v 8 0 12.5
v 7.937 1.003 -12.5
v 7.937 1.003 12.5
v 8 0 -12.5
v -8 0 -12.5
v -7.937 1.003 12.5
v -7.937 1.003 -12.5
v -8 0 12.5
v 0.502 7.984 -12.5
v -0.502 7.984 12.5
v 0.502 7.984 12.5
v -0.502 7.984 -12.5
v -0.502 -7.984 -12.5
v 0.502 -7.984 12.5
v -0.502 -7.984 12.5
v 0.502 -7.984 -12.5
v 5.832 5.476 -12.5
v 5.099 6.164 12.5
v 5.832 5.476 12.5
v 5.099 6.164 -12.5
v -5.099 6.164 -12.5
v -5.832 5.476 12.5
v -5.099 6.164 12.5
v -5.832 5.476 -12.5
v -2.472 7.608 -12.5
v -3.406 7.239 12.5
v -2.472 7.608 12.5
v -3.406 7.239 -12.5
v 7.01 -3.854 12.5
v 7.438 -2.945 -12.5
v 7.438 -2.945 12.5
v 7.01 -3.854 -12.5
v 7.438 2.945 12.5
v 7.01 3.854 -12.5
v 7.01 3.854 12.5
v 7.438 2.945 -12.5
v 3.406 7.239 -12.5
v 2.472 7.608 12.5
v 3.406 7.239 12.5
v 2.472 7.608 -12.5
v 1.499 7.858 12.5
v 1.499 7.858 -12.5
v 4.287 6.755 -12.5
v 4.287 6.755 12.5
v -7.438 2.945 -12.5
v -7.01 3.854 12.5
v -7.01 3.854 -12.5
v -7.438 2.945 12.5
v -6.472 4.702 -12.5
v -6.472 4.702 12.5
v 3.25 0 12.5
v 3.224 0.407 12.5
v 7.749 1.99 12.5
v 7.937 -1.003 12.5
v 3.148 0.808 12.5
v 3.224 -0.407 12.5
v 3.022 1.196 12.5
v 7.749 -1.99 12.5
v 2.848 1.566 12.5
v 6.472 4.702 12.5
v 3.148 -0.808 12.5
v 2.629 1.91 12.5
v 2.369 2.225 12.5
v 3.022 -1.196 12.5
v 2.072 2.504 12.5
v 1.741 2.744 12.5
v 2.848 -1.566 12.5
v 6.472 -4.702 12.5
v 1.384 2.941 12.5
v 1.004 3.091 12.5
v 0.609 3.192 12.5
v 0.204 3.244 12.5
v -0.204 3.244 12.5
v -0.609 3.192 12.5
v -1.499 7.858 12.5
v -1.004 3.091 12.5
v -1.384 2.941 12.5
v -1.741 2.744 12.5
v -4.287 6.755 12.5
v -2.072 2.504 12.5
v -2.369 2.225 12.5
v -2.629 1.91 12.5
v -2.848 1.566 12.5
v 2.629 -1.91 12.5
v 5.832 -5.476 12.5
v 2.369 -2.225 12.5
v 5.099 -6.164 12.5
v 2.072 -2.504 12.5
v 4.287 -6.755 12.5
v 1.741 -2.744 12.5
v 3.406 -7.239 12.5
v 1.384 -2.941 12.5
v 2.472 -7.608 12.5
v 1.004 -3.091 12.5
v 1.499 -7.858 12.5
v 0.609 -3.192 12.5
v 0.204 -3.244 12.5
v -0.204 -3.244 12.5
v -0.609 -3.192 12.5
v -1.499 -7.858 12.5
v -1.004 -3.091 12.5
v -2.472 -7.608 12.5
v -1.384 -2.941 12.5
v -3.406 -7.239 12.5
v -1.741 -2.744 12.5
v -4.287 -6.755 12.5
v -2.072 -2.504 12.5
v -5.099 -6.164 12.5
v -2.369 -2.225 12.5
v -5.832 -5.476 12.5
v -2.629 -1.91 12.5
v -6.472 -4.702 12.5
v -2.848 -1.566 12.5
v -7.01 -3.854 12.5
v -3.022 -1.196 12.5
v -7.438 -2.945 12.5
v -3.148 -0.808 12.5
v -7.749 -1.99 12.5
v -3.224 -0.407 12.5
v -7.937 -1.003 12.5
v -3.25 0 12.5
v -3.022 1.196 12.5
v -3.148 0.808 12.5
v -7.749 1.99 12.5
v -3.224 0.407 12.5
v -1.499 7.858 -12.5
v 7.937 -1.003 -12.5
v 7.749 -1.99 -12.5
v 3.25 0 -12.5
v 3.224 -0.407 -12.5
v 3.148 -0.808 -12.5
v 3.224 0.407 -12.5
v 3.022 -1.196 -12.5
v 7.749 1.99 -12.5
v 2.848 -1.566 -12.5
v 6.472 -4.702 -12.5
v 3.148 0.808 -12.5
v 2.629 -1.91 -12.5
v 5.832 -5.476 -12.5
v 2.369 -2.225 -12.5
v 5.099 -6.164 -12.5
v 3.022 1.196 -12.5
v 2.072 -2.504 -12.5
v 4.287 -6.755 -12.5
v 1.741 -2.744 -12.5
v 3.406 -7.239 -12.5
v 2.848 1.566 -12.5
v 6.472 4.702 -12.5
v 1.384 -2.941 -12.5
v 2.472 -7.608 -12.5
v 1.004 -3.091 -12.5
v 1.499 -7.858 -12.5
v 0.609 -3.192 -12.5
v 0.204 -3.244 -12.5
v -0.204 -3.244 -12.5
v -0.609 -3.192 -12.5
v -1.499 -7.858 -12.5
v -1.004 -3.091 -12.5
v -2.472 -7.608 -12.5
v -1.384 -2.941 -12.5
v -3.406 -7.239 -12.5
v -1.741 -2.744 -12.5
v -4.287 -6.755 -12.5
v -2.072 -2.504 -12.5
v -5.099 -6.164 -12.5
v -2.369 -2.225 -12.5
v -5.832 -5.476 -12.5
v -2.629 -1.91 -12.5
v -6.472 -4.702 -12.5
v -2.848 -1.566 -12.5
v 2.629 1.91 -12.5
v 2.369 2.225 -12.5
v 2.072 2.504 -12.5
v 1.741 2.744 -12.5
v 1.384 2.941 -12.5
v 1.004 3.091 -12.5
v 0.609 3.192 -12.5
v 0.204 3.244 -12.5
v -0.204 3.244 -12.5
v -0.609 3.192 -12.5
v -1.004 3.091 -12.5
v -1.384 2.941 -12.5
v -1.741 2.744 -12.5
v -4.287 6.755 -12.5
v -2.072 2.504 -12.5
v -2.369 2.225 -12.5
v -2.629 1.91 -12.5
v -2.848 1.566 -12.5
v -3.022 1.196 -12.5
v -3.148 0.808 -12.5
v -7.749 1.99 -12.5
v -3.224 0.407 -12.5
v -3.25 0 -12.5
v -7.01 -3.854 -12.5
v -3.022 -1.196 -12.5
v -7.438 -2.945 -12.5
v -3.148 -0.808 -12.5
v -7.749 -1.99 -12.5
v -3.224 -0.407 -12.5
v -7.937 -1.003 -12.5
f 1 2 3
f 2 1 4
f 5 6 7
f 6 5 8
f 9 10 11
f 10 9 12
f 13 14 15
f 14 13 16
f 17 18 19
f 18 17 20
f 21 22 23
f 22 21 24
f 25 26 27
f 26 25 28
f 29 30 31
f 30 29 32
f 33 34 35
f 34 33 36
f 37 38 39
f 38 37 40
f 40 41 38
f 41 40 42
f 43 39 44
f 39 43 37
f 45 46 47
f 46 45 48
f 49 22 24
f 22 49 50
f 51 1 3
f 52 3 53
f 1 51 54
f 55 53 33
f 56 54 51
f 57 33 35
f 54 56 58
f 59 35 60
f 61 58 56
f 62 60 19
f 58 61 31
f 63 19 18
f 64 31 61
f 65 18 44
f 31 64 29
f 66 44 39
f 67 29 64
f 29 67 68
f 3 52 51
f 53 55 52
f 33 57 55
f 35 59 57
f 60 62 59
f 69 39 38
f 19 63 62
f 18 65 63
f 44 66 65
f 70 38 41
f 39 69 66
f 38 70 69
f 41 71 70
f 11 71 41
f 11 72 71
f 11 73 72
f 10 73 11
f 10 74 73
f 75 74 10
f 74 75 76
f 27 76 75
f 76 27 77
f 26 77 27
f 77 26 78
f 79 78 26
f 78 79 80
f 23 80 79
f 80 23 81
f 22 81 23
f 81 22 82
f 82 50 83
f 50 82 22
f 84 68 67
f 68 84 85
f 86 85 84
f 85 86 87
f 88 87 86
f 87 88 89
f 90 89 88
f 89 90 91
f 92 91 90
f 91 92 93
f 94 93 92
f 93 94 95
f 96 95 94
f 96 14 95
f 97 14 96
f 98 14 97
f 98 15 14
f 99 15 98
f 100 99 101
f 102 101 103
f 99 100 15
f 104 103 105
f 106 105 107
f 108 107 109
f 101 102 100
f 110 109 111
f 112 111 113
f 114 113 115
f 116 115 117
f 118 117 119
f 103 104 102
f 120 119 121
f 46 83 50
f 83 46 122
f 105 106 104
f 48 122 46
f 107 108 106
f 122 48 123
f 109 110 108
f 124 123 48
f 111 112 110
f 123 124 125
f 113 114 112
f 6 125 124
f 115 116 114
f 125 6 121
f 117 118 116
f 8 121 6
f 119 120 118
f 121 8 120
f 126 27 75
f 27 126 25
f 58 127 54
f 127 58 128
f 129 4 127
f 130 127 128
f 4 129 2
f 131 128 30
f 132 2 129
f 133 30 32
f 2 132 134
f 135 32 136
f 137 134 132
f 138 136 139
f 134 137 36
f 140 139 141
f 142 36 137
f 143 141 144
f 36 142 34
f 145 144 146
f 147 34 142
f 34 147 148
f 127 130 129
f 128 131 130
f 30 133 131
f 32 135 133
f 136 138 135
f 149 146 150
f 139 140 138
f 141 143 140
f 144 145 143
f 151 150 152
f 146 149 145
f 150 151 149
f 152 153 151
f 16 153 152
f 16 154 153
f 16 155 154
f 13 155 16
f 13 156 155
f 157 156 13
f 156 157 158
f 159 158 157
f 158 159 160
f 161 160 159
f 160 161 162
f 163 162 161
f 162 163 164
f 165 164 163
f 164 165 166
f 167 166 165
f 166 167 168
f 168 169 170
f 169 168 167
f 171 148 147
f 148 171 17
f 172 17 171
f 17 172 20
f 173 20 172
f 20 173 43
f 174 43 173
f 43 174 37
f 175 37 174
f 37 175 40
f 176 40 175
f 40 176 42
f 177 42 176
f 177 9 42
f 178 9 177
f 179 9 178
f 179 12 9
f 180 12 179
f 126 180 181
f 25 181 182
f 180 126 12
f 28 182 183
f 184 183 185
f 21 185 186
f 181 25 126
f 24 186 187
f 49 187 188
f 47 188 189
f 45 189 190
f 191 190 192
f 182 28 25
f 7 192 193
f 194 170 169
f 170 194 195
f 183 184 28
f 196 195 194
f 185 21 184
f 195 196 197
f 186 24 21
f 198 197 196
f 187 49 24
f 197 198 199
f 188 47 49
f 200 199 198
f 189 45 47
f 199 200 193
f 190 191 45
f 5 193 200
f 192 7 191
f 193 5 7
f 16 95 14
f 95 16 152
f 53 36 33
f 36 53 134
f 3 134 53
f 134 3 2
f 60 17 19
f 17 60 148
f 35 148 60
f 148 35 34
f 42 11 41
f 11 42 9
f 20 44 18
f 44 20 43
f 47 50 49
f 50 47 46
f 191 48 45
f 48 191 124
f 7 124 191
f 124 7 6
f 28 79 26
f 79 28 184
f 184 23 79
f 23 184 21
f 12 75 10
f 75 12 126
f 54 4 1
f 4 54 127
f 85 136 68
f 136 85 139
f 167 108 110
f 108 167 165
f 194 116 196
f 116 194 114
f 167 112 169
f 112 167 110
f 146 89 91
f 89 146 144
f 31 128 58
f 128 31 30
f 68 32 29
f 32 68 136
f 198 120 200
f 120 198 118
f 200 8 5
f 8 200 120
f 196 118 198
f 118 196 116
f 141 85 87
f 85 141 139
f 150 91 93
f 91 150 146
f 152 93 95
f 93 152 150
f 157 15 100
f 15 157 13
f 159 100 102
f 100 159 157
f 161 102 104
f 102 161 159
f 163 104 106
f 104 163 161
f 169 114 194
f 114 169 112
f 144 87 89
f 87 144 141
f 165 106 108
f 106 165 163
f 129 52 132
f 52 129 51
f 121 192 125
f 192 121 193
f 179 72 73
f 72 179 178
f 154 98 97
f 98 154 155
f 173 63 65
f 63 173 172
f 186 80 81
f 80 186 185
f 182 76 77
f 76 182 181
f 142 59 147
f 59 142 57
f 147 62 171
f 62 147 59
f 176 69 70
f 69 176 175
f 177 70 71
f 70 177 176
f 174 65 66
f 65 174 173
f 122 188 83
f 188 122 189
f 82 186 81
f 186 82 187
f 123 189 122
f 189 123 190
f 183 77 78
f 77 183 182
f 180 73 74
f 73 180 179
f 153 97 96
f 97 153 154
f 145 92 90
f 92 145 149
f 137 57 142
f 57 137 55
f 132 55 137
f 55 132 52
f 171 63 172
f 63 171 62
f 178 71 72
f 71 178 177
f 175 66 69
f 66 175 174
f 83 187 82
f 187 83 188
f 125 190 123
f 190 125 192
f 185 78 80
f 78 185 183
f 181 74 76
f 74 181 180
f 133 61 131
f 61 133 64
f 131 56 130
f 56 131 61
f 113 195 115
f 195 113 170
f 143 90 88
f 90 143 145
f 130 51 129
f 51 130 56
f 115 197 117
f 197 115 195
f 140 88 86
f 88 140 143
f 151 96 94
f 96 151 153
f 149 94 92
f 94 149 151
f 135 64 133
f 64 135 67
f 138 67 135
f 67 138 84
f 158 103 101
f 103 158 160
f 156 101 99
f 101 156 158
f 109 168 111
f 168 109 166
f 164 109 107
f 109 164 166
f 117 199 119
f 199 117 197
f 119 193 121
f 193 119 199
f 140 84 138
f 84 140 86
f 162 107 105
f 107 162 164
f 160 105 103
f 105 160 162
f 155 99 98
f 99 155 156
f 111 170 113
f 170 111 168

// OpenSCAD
$fn = 50;


difference() {
	union() {
		translate(v = [0, 0, -12.5000000000]) {
			cylinder(h = 25, r = 8.0000000000);
		}
	}
	union() {
		translate(v = [0, 0, -100.0000000000]) {
			cylinder(h = 200, r = 3.2500000000);
		}
	}
}
